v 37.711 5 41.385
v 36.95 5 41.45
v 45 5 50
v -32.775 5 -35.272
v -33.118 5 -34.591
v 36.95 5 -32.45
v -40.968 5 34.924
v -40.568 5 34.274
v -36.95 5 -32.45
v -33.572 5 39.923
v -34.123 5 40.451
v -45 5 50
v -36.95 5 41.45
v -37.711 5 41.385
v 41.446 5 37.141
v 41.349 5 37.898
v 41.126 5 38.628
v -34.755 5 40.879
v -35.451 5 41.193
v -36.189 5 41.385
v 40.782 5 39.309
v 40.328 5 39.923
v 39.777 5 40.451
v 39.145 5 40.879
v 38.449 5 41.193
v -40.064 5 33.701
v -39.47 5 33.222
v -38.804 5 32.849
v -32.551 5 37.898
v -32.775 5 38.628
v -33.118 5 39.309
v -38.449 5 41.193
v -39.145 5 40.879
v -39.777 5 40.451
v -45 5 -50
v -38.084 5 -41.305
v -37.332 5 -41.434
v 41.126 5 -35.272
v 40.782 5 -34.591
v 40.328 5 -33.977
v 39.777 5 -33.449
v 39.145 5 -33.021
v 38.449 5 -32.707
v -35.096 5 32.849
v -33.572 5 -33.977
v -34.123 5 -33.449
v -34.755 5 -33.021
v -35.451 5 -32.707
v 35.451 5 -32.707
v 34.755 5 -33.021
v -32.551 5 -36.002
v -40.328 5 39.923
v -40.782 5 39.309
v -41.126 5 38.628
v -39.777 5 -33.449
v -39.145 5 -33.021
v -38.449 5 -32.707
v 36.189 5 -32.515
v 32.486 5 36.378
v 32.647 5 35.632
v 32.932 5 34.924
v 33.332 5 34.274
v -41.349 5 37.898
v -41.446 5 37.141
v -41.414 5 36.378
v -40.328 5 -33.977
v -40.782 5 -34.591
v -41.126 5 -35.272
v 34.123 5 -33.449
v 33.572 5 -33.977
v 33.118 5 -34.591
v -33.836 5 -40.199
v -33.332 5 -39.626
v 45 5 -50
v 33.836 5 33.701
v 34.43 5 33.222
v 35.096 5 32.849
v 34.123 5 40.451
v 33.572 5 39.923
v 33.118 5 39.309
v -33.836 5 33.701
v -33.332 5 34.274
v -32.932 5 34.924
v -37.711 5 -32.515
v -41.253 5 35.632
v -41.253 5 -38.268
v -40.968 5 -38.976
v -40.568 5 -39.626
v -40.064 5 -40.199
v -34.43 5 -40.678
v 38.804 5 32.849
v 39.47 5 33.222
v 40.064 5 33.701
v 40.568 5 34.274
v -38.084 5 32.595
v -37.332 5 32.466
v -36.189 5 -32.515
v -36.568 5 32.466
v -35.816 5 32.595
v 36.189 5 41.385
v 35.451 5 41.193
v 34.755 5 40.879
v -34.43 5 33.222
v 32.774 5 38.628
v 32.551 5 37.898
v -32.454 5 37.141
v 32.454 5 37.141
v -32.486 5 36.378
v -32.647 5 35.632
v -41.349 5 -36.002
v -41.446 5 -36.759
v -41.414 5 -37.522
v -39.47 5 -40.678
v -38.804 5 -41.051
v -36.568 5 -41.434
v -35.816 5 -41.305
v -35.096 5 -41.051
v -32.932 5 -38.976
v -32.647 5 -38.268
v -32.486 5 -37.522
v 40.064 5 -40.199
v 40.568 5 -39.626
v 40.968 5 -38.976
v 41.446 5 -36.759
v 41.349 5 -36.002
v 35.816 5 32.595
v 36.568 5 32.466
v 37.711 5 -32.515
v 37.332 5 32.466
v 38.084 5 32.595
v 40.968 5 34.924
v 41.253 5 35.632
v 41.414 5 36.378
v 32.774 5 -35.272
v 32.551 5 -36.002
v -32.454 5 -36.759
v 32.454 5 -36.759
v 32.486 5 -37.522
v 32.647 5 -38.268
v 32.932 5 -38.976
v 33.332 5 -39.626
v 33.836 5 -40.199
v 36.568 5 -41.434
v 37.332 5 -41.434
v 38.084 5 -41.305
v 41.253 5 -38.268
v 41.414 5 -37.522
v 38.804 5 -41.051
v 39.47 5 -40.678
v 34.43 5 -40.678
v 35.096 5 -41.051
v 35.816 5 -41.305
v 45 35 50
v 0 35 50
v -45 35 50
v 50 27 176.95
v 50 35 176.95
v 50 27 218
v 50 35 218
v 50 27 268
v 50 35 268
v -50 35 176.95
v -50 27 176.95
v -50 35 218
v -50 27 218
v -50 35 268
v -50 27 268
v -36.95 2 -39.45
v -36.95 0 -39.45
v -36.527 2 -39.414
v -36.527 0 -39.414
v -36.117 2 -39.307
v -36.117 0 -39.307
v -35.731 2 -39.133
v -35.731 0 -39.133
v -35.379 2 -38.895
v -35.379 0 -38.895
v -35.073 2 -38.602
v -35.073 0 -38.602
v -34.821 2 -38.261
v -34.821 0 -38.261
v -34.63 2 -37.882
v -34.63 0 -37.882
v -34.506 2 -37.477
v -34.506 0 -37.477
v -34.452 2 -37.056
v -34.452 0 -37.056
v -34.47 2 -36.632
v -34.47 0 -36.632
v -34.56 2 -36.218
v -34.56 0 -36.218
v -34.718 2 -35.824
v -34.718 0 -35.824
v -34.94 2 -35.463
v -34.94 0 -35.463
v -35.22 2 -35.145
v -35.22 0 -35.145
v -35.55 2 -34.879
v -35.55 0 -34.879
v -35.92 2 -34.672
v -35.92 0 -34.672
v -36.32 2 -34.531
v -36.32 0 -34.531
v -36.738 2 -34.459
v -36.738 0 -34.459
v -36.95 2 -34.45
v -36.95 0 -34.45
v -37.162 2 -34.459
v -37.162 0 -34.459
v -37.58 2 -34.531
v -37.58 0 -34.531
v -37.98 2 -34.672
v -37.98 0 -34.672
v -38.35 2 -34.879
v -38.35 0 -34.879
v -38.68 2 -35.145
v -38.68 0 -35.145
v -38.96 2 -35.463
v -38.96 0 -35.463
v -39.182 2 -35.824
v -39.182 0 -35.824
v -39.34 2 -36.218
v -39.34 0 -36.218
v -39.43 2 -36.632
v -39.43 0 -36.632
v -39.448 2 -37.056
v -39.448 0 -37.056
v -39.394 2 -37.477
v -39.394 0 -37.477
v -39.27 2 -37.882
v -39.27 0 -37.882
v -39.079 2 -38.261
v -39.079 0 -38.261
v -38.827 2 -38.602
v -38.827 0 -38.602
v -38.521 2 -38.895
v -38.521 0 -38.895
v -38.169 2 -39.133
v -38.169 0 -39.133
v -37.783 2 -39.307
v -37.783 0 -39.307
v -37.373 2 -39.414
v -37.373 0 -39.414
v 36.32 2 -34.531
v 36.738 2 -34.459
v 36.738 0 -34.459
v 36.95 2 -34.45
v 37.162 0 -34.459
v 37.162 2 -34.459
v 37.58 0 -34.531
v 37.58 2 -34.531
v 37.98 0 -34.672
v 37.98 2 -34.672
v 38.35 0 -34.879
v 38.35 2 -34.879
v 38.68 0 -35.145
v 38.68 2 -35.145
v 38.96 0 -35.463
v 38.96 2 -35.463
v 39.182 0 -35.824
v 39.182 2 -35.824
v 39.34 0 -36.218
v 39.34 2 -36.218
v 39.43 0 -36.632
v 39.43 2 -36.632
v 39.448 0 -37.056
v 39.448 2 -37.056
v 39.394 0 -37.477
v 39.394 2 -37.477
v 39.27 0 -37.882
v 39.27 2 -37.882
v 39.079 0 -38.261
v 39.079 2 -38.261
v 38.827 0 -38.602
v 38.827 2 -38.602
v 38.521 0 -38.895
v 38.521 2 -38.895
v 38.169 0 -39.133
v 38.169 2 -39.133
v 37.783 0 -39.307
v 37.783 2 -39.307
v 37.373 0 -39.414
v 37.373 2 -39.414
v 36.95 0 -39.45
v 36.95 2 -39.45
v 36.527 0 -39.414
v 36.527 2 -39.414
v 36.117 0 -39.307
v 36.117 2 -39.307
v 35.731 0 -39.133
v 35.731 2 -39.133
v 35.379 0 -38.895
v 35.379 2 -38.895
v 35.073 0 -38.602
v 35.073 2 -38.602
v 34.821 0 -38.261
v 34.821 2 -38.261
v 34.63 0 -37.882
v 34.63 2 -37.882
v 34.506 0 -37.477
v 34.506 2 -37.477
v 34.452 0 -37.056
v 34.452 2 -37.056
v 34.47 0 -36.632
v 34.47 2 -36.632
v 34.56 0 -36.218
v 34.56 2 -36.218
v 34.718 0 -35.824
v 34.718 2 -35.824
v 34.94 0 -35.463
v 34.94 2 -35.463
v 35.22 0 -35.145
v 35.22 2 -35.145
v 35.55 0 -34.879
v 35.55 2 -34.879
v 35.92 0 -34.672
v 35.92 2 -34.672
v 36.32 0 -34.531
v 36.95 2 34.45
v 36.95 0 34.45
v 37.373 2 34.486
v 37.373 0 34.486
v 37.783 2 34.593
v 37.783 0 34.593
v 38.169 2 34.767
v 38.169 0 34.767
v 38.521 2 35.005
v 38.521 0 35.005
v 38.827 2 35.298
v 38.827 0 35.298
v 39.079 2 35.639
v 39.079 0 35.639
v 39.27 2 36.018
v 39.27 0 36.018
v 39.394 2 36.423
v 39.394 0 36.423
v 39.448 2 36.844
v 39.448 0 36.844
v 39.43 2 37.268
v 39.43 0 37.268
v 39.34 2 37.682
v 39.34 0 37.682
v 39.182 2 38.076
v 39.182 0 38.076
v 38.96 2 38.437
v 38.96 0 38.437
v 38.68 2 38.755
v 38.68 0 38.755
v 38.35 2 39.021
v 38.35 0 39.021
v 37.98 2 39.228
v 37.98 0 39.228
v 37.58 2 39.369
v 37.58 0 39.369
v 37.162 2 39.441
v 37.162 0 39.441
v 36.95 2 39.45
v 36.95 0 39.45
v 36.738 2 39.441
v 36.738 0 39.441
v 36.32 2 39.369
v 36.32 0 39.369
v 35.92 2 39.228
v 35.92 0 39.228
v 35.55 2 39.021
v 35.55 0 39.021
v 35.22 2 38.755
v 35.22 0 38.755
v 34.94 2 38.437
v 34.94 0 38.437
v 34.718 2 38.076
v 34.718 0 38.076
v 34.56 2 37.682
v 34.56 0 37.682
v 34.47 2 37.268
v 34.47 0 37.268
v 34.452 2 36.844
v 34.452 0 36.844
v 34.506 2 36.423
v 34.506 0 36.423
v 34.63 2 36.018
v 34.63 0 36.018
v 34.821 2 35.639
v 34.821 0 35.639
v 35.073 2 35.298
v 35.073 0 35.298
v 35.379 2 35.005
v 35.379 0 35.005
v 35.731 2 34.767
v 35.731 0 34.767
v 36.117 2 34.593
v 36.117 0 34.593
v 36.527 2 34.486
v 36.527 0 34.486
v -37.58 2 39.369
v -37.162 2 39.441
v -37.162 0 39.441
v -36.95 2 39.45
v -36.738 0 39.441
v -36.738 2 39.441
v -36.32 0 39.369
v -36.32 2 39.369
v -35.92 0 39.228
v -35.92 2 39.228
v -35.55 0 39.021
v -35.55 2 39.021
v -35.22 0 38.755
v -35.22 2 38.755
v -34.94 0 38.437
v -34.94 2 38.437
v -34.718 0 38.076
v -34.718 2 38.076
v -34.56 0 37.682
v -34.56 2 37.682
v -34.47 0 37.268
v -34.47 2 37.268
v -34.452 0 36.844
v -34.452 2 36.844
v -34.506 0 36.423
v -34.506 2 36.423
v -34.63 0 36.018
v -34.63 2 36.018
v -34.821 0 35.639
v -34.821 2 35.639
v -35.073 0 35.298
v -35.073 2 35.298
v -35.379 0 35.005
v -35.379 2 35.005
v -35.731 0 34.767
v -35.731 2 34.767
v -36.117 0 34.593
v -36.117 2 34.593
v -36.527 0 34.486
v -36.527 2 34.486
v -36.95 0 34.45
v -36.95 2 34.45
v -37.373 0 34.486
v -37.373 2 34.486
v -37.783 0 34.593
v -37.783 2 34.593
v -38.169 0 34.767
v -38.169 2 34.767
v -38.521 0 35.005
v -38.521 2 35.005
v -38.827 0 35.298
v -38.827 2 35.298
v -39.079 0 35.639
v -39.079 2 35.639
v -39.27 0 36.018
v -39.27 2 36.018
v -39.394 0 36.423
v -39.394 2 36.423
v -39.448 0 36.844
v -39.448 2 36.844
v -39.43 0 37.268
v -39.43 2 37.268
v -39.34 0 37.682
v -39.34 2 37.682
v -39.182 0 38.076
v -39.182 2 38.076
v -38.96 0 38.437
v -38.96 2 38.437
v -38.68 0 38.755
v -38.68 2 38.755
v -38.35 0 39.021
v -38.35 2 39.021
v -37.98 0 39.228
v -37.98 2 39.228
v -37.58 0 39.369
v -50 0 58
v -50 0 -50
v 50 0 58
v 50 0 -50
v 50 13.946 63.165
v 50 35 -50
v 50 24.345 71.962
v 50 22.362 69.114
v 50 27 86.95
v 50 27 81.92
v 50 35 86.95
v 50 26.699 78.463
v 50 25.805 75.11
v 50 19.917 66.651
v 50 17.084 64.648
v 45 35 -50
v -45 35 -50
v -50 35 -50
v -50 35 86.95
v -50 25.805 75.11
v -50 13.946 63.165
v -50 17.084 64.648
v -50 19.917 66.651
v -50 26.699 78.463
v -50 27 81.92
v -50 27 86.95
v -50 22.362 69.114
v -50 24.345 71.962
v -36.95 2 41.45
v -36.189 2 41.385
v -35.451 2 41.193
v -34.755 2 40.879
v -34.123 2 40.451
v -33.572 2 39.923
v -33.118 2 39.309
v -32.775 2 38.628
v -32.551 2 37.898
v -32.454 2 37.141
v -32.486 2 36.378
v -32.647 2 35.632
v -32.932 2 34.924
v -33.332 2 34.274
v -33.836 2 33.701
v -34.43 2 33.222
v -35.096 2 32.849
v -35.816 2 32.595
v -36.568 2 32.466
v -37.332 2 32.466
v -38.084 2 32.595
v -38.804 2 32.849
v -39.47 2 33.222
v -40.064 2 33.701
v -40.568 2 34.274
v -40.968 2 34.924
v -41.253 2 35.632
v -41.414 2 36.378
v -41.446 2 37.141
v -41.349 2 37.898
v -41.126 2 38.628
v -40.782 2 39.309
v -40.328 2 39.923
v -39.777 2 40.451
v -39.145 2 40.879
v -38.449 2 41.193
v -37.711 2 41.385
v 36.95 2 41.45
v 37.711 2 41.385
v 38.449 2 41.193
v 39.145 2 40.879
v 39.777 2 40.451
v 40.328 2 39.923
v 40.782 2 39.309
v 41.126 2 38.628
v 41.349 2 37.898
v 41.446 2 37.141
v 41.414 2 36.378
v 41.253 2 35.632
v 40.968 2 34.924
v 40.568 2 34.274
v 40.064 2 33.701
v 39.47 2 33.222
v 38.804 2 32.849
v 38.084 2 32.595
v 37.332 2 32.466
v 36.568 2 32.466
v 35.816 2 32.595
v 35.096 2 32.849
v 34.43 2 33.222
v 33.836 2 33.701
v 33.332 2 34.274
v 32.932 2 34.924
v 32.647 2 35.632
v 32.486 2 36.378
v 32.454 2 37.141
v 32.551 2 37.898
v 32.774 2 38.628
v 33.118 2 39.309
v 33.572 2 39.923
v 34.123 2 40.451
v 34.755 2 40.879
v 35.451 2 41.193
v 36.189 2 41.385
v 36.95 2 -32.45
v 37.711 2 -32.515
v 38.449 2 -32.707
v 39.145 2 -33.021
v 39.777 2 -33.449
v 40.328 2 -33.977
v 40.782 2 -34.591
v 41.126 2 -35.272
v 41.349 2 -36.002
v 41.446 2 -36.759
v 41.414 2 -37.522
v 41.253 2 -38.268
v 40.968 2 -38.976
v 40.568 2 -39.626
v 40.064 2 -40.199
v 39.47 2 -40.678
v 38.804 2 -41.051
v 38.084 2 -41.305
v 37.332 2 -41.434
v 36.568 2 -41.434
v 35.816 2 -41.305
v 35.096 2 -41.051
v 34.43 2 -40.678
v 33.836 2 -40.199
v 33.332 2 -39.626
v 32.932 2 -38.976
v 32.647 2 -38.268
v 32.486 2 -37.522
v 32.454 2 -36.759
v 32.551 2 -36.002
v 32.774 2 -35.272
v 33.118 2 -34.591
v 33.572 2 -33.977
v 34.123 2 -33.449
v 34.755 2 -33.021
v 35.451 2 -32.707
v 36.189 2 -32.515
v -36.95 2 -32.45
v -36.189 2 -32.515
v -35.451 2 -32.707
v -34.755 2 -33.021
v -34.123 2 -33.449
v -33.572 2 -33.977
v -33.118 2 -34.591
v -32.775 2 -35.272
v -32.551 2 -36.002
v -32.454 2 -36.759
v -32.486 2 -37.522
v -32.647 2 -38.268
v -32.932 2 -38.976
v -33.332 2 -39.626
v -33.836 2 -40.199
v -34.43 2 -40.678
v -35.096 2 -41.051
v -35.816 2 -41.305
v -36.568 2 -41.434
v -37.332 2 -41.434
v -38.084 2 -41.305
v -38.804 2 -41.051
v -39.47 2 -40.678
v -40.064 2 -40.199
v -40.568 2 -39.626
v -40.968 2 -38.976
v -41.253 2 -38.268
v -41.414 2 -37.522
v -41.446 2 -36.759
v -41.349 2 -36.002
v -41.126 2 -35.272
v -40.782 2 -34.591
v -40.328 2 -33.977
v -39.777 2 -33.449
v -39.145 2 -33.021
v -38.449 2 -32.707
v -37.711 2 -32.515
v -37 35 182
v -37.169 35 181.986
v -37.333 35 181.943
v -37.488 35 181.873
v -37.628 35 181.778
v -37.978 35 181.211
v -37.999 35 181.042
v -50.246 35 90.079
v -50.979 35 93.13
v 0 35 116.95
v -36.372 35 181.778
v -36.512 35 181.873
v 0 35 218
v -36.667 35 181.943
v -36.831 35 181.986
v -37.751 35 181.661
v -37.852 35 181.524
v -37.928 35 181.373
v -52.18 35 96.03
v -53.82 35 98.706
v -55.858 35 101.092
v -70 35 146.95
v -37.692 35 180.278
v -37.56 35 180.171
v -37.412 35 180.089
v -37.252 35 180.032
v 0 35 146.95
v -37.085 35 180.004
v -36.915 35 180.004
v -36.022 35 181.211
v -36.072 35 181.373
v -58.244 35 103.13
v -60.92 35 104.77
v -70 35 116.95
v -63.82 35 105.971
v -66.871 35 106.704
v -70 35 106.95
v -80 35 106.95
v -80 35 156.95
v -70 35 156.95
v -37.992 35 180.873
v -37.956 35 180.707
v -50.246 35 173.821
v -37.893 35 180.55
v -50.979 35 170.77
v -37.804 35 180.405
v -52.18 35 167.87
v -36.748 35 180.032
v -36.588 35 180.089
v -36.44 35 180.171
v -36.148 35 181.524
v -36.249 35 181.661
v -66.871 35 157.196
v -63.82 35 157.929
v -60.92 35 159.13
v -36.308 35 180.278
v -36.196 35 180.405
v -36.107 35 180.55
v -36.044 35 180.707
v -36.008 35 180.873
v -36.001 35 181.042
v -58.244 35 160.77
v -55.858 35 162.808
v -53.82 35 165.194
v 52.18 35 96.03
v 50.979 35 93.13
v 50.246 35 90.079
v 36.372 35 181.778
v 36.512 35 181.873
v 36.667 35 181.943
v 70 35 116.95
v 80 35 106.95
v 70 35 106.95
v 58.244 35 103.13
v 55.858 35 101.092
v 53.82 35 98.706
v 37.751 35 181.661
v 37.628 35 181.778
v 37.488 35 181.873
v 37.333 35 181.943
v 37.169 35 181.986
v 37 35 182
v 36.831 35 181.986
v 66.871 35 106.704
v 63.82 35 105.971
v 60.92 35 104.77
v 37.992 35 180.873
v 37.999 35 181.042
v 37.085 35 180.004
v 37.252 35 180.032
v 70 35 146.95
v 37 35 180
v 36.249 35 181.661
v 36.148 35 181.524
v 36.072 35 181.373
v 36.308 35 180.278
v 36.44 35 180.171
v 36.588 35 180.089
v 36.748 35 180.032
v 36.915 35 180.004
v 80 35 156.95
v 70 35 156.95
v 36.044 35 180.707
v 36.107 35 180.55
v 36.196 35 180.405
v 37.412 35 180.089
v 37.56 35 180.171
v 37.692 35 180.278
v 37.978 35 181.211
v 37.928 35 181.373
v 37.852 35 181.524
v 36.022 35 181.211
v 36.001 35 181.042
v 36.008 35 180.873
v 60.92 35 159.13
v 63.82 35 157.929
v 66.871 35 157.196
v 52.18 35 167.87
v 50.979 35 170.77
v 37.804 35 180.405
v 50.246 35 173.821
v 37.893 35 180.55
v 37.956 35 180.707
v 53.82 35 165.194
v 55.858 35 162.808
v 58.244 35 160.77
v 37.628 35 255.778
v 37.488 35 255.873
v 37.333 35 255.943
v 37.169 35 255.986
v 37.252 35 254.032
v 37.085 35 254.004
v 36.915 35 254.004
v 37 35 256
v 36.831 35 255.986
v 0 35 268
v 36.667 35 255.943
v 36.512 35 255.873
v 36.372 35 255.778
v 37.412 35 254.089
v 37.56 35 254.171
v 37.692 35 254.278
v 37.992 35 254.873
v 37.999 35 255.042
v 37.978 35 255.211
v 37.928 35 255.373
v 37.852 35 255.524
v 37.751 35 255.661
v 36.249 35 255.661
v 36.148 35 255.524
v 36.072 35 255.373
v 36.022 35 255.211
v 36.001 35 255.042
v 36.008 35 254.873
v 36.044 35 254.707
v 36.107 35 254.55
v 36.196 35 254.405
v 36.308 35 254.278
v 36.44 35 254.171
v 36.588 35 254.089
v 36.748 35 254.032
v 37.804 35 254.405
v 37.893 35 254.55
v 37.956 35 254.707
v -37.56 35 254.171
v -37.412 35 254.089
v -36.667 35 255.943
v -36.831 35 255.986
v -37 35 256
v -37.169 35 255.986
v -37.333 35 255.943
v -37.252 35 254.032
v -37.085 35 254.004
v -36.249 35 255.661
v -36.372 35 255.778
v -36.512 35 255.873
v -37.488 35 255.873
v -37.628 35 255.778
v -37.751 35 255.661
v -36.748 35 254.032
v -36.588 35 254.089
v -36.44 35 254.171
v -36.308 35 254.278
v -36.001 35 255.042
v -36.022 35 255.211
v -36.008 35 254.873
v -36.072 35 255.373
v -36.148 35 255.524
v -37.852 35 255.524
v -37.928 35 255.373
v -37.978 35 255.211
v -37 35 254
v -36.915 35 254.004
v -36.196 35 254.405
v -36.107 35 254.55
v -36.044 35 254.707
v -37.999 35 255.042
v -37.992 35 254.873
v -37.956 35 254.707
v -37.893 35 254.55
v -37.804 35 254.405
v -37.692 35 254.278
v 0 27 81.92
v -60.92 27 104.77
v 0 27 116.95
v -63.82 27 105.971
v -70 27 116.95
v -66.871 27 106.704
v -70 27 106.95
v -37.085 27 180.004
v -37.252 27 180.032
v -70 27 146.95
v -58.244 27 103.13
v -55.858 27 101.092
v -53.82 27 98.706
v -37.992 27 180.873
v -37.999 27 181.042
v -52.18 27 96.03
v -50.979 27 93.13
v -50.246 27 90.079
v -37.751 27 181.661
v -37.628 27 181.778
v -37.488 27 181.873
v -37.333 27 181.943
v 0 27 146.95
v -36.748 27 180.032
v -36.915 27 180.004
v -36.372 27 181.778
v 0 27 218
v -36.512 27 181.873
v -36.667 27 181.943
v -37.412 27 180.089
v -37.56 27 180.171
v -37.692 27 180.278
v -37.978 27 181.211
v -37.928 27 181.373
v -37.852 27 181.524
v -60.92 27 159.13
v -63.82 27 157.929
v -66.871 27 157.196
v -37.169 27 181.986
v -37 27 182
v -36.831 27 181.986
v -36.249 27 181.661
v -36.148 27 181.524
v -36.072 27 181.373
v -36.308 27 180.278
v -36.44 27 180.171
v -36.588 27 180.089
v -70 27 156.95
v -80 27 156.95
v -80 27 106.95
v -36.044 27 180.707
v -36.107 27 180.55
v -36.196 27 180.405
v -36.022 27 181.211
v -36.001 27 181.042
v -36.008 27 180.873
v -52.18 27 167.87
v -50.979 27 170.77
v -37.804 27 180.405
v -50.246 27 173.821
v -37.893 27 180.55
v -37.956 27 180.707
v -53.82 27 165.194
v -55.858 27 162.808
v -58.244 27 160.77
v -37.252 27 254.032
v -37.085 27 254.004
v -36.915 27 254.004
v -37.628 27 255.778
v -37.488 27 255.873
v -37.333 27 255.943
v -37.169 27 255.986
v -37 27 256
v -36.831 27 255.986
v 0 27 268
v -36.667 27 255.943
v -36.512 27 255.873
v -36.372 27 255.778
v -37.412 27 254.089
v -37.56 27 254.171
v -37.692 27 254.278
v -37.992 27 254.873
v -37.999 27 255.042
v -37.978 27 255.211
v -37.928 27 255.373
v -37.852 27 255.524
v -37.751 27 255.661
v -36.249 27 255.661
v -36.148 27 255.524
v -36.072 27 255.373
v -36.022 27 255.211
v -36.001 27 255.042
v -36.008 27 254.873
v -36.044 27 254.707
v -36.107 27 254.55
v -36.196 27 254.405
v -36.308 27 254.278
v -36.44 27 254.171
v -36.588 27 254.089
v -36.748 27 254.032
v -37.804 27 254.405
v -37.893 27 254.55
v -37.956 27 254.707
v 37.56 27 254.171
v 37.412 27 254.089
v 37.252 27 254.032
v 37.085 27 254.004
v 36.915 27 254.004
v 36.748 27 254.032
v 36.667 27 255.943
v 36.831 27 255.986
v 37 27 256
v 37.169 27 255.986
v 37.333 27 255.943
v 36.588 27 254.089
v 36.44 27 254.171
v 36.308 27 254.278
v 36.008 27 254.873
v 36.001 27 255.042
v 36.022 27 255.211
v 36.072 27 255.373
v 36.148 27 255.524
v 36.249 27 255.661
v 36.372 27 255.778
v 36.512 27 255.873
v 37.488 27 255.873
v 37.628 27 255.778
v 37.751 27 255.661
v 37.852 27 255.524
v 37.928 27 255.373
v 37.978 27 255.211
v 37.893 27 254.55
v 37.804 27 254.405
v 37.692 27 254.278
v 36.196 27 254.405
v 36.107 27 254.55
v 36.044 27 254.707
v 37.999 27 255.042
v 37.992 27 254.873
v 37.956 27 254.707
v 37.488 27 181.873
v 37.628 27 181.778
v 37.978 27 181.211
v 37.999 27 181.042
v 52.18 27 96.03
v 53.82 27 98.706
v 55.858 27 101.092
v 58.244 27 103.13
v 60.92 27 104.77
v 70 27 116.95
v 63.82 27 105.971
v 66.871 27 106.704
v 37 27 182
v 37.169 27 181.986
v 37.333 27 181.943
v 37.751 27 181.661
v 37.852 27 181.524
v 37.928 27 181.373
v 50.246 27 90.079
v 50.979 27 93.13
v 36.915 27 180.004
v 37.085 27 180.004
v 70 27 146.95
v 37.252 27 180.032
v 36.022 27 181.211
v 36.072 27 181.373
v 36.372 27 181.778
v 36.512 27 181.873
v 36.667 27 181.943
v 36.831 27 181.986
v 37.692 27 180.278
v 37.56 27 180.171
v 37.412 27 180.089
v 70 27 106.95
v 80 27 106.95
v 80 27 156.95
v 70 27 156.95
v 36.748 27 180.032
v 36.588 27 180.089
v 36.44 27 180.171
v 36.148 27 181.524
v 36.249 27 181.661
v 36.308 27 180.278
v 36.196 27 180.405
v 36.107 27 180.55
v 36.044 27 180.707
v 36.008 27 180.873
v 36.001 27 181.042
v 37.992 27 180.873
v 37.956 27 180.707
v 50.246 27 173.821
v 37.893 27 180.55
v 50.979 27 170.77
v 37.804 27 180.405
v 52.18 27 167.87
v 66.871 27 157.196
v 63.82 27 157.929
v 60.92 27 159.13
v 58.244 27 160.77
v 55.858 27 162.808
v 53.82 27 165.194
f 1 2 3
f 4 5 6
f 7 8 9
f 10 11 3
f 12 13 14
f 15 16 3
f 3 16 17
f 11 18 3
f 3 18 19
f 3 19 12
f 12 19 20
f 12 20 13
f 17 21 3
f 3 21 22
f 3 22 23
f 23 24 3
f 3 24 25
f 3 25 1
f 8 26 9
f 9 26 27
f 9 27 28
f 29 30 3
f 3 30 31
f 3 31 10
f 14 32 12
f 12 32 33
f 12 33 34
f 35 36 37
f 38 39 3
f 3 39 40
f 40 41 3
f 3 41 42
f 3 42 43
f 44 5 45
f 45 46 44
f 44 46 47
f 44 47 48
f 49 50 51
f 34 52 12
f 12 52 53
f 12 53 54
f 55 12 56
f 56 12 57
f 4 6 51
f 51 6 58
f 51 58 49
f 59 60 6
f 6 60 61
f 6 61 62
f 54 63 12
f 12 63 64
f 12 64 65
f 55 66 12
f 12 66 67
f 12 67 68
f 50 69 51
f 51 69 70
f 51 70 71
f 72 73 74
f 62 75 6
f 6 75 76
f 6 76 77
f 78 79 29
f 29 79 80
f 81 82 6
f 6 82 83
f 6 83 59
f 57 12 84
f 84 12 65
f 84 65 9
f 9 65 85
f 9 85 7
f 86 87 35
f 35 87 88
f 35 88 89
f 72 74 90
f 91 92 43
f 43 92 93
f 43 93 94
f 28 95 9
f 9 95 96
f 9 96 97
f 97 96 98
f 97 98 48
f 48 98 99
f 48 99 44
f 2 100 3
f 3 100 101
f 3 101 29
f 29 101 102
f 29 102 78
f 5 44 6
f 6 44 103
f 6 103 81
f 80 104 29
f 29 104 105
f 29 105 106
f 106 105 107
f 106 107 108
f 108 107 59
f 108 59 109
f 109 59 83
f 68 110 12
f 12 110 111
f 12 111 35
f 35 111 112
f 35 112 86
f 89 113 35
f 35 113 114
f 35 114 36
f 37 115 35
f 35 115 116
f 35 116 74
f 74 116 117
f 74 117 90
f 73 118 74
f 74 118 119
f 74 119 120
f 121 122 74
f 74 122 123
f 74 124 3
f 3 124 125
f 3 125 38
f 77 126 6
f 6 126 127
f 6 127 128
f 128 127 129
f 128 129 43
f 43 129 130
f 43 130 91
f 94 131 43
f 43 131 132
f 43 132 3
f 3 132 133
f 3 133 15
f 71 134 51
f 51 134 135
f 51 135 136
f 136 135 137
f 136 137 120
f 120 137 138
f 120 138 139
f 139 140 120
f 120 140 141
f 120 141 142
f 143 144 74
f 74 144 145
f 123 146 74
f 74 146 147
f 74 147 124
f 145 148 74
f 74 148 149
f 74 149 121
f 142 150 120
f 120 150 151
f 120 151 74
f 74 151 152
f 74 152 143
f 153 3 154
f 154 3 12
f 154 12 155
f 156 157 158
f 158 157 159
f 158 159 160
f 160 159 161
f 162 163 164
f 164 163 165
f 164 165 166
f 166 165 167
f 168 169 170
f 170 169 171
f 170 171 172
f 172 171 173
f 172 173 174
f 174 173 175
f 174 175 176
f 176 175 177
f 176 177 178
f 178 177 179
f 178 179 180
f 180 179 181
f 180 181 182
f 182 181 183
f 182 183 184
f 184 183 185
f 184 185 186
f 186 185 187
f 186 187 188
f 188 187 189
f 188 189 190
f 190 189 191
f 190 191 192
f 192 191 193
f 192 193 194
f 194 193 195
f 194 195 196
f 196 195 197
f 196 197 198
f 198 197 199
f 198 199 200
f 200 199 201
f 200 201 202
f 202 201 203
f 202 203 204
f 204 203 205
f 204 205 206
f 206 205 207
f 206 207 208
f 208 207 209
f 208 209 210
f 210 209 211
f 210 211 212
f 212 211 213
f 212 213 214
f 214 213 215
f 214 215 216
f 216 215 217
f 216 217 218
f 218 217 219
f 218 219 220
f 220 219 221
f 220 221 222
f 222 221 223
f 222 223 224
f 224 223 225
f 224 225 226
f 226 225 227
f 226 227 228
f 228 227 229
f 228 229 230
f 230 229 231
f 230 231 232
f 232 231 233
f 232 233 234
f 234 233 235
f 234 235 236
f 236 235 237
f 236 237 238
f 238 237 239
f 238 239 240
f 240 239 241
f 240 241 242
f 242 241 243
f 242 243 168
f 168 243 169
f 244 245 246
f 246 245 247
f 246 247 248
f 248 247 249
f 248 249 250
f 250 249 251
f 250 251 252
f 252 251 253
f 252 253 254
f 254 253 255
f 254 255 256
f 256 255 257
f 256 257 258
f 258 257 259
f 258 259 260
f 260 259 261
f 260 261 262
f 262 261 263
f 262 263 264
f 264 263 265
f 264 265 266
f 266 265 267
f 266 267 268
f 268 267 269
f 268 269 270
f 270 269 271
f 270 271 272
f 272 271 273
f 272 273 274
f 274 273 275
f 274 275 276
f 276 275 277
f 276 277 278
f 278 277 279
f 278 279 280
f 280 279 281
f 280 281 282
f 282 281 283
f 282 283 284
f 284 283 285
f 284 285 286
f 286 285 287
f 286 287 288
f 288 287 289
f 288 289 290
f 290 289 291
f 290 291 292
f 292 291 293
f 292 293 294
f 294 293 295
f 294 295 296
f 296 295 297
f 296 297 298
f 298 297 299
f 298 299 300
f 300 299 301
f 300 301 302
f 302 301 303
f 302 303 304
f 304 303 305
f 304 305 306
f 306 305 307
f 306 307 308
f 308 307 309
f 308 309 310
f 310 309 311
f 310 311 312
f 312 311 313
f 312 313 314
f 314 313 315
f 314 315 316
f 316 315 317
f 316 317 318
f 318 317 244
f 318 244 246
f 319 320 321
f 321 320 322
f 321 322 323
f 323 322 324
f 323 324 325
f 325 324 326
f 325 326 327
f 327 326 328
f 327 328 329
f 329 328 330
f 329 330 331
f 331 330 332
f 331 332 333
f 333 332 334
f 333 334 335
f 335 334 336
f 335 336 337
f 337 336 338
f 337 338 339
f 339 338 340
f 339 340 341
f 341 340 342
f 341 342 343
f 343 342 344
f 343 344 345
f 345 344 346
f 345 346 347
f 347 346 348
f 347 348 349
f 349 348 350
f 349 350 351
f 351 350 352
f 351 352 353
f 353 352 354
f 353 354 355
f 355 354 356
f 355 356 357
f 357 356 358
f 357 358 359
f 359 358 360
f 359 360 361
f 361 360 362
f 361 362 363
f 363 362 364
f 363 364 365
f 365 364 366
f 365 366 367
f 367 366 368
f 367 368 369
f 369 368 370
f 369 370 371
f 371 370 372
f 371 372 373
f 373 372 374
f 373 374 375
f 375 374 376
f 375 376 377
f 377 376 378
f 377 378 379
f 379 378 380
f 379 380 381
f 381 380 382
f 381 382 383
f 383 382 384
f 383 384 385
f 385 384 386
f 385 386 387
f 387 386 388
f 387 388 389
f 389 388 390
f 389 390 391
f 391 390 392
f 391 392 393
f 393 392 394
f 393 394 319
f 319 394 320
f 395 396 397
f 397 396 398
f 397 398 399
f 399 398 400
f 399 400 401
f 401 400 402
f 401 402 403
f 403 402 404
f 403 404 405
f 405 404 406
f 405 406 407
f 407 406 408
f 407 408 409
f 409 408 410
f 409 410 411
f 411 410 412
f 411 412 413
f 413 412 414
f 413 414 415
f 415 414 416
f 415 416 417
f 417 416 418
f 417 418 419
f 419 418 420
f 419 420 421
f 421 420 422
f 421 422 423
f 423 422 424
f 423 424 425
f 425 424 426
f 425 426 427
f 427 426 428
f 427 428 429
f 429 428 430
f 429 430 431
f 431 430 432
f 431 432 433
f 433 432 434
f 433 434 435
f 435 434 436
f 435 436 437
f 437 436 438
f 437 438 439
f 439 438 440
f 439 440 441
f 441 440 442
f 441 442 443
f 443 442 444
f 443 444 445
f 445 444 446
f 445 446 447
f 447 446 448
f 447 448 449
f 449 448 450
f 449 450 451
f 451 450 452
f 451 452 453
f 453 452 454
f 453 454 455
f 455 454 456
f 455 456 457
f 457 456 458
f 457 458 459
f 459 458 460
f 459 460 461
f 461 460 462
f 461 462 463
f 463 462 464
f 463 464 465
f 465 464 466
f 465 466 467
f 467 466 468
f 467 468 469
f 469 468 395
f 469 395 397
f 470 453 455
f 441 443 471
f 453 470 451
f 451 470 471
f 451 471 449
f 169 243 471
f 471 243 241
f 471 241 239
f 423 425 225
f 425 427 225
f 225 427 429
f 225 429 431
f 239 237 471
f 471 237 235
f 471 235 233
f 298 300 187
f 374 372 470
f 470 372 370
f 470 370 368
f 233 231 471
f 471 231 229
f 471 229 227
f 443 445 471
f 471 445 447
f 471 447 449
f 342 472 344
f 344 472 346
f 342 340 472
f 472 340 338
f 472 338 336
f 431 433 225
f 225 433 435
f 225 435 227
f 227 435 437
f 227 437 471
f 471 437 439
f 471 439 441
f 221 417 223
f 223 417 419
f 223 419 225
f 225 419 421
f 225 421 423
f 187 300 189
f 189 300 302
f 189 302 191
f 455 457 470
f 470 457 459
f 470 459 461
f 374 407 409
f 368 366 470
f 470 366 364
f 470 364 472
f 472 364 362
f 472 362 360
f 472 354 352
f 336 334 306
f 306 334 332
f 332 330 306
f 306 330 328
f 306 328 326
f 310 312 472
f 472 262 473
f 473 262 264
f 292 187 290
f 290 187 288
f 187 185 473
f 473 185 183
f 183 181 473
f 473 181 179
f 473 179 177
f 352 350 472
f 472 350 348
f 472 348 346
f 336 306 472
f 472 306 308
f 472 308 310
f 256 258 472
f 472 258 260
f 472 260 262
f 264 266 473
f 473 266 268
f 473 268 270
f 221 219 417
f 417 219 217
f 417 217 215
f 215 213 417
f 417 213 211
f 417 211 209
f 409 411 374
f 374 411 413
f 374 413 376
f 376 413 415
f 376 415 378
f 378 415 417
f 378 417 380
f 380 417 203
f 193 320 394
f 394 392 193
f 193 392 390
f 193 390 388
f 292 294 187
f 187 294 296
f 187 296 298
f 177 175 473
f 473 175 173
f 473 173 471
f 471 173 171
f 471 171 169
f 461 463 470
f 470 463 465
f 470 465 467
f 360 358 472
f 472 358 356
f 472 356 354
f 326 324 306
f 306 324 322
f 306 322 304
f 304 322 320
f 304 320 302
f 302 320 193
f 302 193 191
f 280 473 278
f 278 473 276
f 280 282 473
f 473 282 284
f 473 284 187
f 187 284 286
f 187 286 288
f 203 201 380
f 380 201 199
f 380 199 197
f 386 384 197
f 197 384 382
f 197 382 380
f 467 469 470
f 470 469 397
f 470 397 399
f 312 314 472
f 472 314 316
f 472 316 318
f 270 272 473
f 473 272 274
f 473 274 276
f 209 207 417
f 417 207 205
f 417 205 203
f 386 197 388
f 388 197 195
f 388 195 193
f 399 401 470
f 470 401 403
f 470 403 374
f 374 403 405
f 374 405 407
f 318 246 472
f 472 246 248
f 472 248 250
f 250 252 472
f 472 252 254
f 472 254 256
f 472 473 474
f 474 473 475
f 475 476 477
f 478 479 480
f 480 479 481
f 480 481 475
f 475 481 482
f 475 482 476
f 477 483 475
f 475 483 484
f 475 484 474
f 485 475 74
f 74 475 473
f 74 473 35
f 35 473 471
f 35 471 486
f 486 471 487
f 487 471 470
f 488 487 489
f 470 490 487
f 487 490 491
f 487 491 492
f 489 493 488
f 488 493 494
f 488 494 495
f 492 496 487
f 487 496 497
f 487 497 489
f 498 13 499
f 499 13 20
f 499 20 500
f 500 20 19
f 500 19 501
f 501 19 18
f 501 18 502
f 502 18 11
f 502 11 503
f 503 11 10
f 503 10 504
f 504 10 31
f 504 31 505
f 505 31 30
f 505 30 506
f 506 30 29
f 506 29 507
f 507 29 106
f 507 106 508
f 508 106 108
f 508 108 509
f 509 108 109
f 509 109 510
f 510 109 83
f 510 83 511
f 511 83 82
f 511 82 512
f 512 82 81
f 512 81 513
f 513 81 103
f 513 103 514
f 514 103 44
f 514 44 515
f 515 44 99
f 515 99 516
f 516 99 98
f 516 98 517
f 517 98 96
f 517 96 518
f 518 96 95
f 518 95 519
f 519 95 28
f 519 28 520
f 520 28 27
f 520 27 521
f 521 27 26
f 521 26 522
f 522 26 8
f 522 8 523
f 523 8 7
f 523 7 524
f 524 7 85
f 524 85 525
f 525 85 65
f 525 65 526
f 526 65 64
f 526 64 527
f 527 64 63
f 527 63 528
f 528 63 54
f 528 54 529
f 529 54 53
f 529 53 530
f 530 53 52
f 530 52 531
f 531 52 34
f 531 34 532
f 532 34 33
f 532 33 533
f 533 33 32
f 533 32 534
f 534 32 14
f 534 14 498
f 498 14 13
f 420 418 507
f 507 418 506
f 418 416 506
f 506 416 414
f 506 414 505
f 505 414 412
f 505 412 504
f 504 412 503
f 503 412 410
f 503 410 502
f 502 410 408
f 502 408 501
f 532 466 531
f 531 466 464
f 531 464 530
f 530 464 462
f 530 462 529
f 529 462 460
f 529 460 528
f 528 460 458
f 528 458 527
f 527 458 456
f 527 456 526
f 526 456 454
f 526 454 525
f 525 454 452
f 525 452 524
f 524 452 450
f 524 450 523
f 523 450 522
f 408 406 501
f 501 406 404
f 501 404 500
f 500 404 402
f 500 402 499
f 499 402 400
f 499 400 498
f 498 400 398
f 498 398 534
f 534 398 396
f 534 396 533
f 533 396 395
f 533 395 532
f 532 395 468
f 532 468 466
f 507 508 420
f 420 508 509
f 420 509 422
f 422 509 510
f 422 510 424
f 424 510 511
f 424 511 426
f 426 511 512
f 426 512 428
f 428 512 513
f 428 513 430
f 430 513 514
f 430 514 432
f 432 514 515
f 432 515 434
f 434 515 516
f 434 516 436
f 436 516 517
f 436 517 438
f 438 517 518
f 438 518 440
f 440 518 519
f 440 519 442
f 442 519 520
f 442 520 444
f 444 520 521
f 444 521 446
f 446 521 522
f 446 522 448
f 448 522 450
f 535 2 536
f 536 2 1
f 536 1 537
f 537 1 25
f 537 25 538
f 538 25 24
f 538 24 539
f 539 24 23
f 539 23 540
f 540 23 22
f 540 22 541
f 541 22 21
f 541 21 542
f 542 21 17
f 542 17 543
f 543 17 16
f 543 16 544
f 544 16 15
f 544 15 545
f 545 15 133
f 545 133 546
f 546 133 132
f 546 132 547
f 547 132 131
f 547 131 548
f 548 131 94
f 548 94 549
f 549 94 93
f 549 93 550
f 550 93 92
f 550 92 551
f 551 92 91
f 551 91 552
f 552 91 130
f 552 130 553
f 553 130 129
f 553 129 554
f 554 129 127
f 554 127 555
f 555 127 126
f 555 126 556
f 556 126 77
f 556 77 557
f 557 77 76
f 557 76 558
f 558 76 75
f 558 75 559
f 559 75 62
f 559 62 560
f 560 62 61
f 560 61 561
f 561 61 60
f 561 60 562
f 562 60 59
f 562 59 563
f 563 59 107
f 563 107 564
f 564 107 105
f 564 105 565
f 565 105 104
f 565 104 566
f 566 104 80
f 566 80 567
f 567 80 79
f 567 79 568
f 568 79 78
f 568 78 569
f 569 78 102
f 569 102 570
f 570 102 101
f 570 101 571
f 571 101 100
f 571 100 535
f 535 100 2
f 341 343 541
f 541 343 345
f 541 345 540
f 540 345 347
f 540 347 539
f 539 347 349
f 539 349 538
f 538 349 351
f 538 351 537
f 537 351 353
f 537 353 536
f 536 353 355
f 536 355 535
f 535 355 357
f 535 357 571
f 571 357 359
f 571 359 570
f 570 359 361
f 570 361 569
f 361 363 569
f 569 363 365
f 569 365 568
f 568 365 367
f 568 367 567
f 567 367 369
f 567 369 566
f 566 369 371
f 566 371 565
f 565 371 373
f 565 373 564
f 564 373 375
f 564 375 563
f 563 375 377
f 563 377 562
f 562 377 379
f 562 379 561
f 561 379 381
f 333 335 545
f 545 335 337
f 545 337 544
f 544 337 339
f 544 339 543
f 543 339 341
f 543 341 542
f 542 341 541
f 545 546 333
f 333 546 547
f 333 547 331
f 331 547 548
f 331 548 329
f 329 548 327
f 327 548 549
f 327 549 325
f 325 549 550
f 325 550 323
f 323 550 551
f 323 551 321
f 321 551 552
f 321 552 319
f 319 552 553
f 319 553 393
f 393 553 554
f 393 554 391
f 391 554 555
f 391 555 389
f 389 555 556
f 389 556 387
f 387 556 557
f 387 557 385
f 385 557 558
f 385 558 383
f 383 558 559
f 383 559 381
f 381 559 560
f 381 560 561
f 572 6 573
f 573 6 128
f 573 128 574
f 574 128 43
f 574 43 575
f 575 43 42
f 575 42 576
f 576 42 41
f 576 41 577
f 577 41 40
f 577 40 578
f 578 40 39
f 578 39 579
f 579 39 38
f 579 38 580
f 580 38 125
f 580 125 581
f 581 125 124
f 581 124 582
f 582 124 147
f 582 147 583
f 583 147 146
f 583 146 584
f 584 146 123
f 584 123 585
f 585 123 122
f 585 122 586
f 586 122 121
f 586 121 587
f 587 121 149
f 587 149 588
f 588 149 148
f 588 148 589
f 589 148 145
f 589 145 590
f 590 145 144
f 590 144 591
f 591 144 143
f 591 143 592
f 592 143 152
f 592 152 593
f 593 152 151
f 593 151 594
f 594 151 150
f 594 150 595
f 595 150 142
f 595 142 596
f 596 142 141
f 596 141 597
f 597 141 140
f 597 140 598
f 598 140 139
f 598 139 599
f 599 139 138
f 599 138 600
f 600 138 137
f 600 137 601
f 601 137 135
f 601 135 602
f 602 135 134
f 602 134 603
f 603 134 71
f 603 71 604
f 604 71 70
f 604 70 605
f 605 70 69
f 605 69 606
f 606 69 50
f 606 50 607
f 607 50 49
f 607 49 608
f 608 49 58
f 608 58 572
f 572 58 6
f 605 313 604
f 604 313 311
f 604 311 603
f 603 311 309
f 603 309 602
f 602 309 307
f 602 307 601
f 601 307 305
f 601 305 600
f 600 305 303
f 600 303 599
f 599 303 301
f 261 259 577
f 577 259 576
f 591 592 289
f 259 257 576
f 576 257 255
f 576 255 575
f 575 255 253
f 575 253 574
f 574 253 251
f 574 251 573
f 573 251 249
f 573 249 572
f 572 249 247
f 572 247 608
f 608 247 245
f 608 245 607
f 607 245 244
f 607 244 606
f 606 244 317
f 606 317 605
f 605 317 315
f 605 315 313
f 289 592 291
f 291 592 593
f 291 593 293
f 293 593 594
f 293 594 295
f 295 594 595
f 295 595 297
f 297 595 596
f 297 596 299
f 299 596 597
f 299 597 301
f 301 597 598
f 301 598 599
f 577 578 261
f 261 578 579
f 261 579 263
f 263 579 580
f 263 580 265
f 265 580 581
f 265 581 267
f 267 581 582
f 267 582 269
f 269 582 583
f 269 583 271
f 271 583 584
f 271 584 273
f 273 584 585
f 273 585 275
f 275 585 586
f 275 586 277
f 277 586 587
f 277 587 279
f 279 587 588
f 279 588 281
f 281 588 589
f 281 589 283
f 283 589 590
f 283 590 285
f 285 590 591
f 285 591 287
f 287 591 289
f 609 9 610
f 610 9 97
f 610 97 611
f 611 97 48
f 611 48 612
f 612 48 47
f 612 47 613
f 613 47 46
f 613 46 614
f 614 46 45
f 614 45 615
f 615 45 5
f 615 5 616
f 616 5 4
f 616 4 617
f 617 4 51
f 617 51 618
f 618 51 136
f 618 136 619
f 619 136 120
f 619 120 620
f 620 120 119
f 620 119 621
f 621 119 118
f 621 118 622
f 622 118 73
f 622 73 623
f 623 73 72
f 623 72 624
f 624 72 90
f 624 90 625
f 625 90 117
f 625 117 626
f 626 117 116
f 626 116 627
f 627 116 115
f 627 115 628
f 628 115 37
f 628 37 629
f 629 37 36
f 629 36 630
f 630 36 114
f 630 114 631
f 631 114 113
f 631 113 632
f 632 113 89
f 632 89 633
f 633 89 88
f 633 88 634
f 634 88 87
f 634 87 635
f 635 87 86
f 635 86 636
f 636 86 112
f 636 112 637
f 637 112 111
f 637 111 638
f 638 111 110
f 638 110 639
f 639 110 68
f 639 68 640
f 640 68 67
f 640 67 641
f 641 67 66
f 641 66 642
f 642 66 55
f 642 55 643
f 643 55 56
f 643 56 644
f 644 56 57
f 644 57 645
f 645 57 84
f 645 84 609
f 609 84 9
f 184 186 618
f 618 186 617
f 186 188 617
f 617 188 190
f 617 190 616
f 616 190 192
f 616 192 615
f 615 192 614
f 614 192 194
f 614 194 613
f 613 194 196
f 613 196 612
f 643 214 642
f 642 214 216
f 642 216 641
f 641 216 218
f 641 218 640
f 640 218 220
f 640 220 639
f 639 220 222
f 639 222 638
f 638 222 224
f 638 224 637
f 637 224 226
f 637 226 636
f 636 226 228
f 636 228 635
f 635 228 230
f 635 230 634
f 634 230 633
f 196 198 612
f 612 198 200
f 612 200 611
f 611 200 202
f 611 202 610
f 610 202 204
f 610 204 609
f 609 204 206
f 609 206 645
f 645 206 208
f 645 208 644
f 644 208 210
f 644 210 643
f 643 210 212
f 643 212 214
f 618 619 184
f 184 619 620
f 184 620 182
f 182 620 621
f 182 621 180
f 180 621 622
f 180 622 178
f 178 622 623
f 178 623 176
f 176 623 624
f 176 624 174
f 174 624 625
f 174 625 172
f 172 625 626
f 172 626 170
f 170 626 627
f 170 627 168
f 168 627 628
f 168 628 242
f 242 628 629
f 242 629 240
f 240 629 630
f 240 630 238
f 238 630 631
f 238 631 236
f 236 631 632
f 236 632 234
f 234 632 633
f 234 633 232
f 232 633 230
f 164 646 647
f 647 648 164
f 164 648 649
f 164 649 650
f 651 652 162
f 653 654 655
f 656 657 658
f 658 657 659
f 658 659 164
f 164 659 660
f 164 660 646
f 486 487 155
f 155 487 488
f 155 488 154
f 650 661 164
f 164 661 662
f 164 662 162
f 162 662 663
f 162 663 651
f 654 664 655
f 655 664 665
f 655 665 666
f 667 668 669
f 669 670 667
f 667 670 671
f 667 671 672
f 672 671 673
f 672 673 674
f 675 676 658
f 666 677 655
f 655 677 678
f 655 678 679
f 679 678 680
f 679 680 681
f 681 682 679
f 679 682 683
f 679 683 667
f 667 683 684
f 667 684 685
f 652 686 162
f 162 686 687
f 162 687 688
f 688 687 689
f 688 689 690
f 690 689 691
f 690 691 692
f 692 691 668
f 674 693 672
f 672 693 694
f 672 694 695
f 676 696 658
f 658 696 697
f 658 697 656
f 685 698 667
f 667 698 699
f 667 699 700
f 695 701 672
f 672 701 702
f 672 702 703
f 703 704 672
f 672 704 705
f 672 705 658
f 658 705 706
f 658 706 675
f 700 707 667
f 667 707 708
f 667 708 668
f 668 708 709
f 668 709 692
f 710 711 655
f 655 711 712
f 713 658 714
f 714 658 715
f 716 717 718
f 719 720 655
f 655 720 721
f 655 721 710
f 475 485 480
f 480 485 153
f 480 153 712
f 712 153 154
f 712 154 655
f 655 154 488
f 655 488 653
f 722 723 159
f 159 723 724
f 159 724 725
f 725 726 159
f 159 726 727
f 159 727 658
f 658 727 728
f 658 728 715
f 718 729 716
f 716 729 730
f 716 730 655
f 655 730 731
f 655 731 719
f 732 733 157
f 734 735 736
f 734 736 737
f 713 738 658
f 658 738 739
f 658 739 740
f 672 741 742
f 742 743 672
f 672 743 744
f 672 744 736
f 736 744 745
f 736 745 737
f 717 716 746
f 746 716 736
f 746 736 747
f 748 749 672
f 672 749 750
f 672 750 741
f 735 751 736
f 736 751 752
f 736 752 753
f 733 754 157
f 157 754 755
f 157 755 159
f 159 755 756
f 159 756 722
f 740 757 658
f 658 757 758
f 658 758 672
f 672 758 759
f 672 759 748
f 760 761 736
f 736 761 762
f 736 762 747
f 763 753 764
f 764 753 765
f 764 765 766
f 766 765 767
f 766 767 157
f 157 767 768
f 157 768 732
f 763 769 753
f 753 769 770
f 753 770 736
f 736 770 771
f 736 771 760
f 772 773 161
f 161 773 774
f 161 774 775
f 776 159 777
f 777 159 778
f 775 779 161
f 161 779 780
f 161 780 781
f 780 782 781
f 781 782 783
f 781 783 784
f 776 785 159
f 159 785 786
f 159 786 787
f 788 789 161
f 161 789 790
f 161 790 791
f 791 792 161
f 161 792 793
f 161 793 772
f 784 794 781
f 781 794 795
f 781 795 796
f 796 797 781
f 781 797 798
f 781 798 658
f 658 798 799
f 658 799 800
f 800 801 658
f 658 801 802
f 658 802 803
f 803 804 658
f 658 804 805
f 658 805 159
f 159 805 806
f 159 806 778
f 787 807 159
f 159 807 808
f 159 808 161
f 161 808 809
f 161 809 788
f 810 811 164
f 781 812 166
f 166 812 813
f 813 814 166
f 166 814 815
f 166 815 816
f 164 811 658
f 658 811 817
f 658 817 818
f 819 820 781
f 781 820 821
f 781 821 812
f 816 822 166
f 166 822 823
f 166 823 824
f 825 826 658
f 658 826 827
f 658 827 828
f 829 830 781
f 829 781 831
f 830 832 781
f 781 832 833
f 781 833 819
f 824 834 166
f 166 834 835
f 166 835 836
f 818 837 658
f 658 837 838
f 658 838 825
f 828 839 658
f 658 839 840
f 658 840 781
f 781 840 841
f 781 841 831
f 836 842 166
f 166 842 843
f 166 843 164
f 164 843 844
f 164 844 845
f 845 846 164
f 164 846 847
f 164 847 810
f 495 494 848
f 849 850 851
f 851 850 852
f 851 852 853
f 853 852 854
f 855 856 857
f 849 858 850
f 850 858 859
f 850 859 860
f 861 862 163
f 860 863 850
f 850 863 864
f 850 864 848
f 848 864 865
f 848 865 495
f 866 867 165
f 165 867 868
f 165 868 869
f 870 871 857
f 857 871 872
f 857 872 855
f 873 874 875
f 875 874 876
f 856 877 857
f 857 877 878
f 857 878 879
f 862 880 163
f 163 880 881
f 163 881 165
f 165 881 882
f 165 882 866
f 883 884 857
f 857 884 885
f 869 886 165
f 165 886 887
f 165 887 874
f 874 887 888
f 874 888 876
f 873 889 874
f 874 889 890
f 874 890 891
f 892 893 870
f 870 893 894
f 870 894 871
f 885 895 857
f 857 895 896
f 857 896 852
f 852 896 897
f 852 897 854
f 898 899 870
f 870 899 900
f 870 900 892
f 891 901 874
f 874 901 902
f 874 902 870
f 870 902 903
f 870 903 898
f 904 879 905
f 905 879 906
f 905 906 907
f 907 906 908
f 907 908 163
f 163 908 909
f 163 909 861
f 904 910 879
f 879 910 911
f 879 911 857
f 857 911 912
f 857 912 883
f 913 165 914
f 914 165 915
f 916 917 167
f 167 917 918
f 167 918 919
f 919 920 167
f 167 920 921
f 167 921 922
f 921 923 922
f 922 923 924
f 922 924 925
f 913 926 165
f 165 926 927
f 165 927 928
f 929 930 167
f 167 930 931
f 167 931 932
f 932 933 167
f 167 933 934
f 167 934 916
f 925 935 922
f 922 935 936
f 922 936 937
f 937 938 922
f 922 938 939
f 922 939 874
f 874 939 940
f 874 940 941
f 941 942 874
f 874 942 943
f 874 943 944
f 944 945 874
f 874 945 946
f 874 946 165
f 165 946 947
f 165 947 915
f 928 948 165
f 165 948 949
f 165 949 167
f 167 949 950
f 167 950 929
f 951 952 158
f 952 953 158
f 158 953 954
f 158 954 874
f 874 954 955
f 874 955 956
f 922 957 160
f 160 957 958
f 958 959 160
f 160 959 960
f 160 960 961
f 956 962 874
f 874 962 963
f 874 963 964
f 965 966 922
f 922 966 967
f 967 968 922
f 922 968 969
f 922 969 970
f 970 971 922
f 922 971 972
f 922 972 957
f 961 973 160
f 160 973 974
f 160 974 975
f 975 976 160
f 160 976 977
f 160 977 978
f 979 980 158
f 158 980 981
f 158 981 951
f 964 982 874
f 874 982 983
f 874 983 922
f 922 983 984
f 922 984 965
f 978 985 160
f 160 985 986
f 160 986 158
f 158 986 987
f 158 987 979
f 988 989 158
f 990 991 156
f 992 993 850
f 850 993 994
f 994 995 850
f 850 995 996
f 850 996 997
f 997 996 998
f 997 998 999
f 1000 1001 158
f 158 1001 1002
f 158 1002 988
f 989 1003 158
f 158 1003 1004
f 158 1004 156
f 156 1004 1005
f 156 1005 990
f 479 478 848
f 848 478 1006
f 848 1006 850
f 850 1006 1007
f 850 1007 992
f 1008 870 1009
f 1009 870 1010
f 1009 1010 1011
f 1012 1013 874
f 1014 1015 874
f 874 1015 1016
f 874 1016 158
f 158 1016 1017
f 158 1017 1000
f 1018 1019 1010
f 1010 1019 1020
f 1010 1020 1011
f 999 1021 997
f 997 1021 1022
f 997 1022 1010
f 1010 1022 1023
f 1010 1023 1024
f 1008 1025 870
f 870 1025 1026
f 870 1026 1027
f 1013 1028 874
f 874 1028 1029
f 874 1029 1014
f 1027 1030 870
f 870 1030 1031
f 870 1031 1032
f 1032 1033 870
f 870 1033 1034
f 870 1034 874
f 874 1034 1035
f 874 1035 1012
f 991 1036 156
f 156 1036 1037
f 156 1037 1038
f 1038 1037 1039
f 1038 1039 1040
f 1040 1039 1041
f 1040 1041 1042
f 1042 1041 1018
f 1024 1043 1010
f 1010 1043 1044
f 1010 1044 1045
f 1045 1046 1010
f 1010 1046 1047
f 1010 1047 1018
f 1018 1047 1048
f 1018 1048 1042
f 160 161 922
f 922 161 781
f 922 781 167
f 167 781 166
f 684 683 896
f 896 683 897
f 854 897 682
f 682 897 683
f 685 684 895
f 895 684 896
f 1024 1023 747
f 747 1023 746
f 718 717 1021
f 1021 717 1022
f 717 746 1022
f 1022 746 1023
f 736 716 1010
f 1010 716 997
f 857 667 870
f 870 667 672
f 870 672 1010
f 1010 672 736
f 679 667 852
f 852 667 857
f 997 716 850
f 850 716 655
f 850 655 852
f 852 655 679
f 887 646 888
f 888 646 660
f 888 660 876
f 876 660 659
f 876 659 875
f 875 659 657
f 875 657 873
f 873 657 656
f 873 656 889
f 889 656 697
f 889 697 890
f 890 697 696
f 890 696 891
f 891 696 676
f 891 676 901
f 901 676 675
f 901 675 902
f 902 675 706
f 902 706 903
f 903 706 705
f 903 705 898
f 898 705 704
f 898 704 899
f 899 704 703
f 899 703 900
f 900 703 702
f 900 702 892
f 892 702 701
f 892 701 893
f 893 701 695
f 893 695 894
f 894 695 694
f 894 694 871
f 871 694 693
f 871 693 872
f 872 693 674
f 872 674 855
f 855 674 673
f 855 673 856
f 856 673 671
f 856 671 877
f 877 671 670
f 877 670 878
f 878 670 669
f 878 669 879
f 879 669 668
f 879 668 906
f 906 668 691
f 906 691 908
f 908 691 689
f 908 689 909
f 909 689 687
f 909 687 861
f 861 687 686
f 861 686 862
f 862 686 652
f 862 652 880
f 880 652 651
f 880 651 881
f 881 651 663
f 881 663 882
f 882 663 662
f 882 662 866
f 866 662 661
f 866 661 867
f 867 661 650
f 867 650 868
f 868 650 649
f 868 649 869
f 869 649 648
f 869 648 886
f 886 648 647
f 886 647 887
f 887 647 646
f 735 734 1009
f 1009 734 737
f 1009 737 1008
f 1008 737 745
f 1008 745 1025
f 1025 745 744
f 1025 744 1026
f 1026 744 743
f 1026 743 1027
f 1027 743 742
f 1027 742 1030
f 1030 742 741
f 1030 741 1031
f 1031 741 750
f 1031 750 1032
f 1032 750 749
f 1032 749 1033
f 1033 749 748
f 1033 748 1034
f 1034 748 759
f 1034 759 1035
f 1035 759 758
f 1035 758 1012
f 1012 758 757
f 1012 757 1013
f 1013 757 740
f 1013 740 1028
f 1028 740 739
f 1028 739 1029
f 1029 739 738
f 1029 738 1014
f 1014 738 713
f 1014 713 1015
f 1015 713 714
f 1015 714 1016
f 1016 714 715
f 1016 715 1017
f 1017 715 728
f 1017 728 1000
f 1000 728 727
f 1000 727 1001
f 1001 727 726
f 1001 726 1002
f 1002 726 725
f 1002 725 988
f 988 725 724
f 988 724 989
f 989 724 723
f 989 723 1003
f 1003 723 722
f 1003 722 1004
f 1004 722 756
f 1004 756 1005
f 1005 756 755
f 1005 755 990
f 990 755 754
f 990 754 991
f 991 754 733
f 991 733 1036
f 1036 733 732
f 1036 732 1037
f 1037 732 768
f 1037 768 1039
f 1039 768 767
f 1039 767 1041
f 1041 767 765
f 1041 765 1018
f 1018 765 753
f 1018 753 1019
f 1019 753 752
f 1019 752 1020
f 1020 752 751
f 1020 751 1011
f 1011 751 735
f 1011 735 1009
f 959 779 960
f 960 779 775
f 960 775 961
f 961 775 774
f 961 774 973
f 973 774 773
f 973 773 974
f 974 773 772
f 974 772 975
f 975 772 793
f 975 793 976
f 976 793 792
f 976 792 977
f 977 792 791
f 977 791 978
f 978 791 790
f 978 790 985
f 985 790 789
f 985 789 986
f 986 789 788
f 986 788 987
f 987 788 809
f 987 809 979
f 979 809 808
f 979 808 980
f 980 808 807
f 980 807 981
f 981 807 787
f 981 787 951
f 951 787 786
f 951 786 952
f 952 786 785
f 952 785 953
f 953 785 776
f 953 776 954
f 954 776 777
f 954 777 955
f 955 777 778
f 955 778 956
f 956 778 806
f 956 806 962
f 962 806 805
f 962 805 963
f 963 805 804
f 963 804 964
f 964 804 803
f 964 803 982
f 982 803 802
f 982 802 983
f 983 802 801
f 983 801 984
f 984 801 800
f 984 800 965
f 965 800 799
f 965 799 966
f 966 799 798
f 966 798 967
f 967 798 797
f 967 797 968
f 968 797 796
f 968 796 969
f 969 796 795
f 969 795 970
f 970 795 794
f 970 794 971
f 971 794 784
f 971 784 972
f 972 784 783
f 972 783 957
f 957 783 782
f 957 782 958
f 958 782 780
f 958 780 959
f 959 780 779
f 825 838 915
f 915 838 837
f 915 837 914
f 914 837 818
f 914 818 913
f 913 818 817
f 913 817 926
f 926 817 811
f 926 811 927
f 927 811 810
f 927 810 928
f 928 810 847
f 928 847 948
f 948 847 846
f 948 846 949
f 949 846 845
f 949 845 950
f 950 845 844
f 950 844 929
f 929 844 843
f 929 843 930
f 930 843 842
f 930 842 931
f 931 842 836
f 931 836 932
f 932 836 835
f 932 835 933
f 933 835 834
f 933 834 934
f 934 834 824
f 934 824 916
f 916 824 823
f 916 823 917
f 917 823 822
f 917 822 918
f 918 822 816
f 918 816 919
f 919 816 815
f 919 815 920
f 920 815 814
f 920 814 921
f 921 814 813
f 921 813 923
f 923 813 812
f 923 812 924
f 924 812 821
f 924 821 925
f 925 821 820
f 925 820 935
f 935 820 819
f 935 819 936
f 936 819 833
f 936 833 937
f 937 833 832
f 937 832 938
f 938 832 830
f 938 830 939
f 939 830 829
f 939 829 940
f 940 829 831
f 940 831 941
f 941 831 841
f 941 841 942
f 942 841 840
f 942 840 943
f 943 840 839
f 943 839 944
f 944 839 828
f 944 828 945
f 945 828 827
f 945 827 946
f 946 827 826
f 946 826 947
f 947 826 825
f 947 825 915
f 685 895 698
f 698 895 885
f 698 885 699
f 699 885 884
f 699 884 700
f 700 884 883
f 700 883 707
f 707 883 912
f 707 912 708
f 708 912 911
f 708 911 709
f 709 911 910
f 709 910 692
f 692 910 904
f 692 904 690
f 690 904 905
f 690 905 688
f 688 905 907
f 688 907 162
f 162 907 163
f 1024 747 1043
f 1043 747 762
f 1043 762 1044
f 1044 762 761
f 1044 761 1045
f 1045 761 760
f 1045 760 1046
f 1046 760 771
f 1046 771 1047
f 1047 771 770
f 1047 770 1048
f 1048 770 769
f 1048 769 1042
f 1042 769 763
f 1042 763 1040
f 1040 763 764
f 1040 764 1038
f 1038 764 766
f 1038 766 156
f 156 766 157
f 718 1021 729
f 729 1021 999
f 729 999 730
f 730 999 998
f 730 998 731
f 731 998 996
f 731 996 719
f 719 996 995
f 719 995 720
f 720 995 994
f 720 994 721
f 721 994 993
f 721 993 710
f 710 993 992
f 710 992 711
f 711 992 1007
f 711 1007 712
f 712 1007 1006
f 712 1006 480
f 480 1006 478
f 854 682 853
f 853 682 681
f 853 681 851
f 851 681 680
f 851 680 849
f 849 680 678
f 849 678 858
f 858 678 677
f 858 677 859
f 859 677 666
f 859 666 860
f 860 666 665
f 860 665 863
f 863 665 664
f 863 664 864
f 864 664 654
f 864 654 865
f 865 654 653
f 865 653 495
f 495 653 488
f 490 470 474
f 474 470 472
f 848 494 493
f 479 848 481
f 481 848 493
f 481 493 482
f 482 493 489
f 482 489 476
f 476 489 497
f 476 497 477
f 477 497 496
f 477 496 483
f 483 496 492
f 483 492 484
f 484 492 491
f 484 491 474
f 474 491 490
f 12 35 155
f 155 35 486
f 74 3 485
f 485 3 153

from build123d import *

# Parameters (mm, degrees)
SKETCH1_W           = 100
SKETCH1_H           = 100
SKETCH1_R           = 2.5
BOSS_EXTRUDE1_DEPTH = 5
CUT_EXTRUDE1_START  = -5
SKETCH6_R           = 4.5
CUT_EXTRUDE1_DEPTH  = 3
SKETCH8_W           = 8
SKETCH8_H           = 35
BOSS_EXTRUDE2_DEPTH = 100
SKETCH9_W           = 100
SKETCH9_H           = 8
BOSS_EXTRUDE3_DEPTH = 210
SKETCH10_W          = 160
SKETCH10_H          = 50
BOSS_EXTRUDE4_DEPTH = 8
SKETCH11_W          = 140
SKETCH11_H          = 30
CUT_EXTRUDE2_DEPTH  = 8
SKETCH13_R          = 1
CUT_EXTRUDE3_DEPTH  = 8
FILLET1_R           = 20
BOSS_EXTRUDE5_DEPTH = 100
FILLET3_R           = 20
SKETCH15_W          = 5
SKETCH15_H          = 100
BOSS_EXTRUDE6_DEPTH = 30


with BuildPart() as part:
    # Sketch1 → Boss-Extrude1 (new body)
    with BuildSketch(Plane(origin=(0, 0, 0), x_dir=(1, 0, 0), z_dir=(0, 1, 0))):
        Rectangle(SKETCH1_W, SKETCH1_H)
        with Locations((-36.95, 36.95)):
            Circle(SKETCH1_R, mode=Mode.SUBTRACT)
        with Locations((36.95, 36.95)):
            Circle(SKETCH1_R, mode=Mode.SUBTRACT)
        with Locations((36.95, -36.95)):
            Circle(SKETCH1_R, mode=Mode.SUBTRACT)
        with Locations((-36.95, -36.95)):
            Circle(SKETCH1_R, mode=Mode.SUBTRACT)
    extrude(amount=BOSS_EXTRUDE1_DEPTH)

    # Sketch6 → Cut-Extrude1 (cut)
    with BuildSketch(Plane.XZ.offset(CUT_EXTRUDE1_START)):
        with Locations((-36.95, 36.95)):
            Circle(SKETCH6_R)
        with Locations((36.95, 36.95)):
            Circle(SKETCH6_R)
        with Locations((36.95, -36.95)):
            Circle(SKETCH6_R)
        with Locations((-36.95, -36.95)):
            Circle(SKETCH6_R)
    extrude(amount=CUT_EXTRUDE1_DEPTH, mode=Mode.SUBTRACT)

    # Sketch8 → Boss-Extrude2 (add, through all)
    with BuildSketch(Plane.ZY.offset(50)):
        with Locations((54, 17.5)):
            Rectangle(SKETCH8_W, SKETCH8_H)
    extrude(amount=-BOSS_EXTRUDE2_DEPTH)

    # Sketch9 → Boss-Extrude3 (add)
    with BuildSketch(Plane.XY.offset(58)):
        with Locations((0, 31)):
            Rectangle(SKETCH9_W, SKETCH9_H)
    extrude(amount=BOSS_EXTRUDE3_DEPTH)

    # Sketch10 → Boss-Extrude4 (add)
    with BuildSketch(Plane(origin=(0, 35, 0), x_dir=(1, 0, 0), z_dir=(0, 1, 0))):
        with Locations((0, -131.95)):
            Rectangle(SKETCH10_W, SKETCH10_H)
    extrude(amount=-BOSS_EXTRUDE4_DEPTH)

    # Sketch11 → Cut-Extrude2 (cut)
    with BuildSketch(Plane(origin=(0, 35, 0), x_dir=(1, 0, 0), z_dir=(0, 1, 0))):
        with Locations((0, -131.95)):
            Rectangle(SKETCH11_W, SKETCH11_H)
    extrude(amount=-CUT_EXTRUDE2_DEPTH, mode=Mode.SUBTRACT)

    # Sketch13 → Cut-Extrude3 (cut)
    with BuildSketch(Plane(origin=(0, 35, 0), x_dir=(1, 0, 0), z_dir=(0, 1, 0))):
        with Locations((-37, -181)):
            Circle(SKETCH13_R)
        with Locations((37, -181)):
            Circle(SKETCH13_R)
        with Locations((37, -255)):
            Circle(SKETCH13_R)
        with Locations((-37, -255)):
            Circle(SKETCH13_R)
    extrude(amount=-CUT_EXTRUDE3_DEPTH, mode=Mode.SUBTRACT)

    # Fillet1
    fillet1_edges = [part.edges().sort_by_distance(p)[0] for p in [
        (50, 31, 156.95),
        (-50, 31, 156.95),
        (50, 31, 106.95),
        (-50, 31, 106.95),
    ]]
    fillet(fillet1_edges, radius=FILLET1_R)

    # Sketch14 → Boss-Extrude5 (add)
    with BuildSketch(Plane.ZY.offset(50)):
        Polygon((58, 0), (58, 27), (68, 27), align=None)
    extrude(amount=-BOSS_EXTRUDE5_DEPTH)

    # Fillet3
    fillet3_edges = [part.edges().sort_by_distance(p)[0] for p in [
        (0, 27, 68),
    ]]
    fillet(fillet3_edges, radius=FILLET3_R)

    # Sketch15 → Boss-Extrude6 (add)
    with BuildSketch(Plane(origin=(0, 5, 0), x_dir=(1, 0, 0), z_dir=(0, 1, 0))):
        with Locations((-47.5, 0)):
            Rectangle(SKETCH15_W, SKETCH15_H)
        with Locations((47.5, 0)):
            Rectangle(SKETCH15_W, SKETCH15_H)
    extrude(amount=BOSS_EXTRUDE6_DEPTH)


solid = part.part
